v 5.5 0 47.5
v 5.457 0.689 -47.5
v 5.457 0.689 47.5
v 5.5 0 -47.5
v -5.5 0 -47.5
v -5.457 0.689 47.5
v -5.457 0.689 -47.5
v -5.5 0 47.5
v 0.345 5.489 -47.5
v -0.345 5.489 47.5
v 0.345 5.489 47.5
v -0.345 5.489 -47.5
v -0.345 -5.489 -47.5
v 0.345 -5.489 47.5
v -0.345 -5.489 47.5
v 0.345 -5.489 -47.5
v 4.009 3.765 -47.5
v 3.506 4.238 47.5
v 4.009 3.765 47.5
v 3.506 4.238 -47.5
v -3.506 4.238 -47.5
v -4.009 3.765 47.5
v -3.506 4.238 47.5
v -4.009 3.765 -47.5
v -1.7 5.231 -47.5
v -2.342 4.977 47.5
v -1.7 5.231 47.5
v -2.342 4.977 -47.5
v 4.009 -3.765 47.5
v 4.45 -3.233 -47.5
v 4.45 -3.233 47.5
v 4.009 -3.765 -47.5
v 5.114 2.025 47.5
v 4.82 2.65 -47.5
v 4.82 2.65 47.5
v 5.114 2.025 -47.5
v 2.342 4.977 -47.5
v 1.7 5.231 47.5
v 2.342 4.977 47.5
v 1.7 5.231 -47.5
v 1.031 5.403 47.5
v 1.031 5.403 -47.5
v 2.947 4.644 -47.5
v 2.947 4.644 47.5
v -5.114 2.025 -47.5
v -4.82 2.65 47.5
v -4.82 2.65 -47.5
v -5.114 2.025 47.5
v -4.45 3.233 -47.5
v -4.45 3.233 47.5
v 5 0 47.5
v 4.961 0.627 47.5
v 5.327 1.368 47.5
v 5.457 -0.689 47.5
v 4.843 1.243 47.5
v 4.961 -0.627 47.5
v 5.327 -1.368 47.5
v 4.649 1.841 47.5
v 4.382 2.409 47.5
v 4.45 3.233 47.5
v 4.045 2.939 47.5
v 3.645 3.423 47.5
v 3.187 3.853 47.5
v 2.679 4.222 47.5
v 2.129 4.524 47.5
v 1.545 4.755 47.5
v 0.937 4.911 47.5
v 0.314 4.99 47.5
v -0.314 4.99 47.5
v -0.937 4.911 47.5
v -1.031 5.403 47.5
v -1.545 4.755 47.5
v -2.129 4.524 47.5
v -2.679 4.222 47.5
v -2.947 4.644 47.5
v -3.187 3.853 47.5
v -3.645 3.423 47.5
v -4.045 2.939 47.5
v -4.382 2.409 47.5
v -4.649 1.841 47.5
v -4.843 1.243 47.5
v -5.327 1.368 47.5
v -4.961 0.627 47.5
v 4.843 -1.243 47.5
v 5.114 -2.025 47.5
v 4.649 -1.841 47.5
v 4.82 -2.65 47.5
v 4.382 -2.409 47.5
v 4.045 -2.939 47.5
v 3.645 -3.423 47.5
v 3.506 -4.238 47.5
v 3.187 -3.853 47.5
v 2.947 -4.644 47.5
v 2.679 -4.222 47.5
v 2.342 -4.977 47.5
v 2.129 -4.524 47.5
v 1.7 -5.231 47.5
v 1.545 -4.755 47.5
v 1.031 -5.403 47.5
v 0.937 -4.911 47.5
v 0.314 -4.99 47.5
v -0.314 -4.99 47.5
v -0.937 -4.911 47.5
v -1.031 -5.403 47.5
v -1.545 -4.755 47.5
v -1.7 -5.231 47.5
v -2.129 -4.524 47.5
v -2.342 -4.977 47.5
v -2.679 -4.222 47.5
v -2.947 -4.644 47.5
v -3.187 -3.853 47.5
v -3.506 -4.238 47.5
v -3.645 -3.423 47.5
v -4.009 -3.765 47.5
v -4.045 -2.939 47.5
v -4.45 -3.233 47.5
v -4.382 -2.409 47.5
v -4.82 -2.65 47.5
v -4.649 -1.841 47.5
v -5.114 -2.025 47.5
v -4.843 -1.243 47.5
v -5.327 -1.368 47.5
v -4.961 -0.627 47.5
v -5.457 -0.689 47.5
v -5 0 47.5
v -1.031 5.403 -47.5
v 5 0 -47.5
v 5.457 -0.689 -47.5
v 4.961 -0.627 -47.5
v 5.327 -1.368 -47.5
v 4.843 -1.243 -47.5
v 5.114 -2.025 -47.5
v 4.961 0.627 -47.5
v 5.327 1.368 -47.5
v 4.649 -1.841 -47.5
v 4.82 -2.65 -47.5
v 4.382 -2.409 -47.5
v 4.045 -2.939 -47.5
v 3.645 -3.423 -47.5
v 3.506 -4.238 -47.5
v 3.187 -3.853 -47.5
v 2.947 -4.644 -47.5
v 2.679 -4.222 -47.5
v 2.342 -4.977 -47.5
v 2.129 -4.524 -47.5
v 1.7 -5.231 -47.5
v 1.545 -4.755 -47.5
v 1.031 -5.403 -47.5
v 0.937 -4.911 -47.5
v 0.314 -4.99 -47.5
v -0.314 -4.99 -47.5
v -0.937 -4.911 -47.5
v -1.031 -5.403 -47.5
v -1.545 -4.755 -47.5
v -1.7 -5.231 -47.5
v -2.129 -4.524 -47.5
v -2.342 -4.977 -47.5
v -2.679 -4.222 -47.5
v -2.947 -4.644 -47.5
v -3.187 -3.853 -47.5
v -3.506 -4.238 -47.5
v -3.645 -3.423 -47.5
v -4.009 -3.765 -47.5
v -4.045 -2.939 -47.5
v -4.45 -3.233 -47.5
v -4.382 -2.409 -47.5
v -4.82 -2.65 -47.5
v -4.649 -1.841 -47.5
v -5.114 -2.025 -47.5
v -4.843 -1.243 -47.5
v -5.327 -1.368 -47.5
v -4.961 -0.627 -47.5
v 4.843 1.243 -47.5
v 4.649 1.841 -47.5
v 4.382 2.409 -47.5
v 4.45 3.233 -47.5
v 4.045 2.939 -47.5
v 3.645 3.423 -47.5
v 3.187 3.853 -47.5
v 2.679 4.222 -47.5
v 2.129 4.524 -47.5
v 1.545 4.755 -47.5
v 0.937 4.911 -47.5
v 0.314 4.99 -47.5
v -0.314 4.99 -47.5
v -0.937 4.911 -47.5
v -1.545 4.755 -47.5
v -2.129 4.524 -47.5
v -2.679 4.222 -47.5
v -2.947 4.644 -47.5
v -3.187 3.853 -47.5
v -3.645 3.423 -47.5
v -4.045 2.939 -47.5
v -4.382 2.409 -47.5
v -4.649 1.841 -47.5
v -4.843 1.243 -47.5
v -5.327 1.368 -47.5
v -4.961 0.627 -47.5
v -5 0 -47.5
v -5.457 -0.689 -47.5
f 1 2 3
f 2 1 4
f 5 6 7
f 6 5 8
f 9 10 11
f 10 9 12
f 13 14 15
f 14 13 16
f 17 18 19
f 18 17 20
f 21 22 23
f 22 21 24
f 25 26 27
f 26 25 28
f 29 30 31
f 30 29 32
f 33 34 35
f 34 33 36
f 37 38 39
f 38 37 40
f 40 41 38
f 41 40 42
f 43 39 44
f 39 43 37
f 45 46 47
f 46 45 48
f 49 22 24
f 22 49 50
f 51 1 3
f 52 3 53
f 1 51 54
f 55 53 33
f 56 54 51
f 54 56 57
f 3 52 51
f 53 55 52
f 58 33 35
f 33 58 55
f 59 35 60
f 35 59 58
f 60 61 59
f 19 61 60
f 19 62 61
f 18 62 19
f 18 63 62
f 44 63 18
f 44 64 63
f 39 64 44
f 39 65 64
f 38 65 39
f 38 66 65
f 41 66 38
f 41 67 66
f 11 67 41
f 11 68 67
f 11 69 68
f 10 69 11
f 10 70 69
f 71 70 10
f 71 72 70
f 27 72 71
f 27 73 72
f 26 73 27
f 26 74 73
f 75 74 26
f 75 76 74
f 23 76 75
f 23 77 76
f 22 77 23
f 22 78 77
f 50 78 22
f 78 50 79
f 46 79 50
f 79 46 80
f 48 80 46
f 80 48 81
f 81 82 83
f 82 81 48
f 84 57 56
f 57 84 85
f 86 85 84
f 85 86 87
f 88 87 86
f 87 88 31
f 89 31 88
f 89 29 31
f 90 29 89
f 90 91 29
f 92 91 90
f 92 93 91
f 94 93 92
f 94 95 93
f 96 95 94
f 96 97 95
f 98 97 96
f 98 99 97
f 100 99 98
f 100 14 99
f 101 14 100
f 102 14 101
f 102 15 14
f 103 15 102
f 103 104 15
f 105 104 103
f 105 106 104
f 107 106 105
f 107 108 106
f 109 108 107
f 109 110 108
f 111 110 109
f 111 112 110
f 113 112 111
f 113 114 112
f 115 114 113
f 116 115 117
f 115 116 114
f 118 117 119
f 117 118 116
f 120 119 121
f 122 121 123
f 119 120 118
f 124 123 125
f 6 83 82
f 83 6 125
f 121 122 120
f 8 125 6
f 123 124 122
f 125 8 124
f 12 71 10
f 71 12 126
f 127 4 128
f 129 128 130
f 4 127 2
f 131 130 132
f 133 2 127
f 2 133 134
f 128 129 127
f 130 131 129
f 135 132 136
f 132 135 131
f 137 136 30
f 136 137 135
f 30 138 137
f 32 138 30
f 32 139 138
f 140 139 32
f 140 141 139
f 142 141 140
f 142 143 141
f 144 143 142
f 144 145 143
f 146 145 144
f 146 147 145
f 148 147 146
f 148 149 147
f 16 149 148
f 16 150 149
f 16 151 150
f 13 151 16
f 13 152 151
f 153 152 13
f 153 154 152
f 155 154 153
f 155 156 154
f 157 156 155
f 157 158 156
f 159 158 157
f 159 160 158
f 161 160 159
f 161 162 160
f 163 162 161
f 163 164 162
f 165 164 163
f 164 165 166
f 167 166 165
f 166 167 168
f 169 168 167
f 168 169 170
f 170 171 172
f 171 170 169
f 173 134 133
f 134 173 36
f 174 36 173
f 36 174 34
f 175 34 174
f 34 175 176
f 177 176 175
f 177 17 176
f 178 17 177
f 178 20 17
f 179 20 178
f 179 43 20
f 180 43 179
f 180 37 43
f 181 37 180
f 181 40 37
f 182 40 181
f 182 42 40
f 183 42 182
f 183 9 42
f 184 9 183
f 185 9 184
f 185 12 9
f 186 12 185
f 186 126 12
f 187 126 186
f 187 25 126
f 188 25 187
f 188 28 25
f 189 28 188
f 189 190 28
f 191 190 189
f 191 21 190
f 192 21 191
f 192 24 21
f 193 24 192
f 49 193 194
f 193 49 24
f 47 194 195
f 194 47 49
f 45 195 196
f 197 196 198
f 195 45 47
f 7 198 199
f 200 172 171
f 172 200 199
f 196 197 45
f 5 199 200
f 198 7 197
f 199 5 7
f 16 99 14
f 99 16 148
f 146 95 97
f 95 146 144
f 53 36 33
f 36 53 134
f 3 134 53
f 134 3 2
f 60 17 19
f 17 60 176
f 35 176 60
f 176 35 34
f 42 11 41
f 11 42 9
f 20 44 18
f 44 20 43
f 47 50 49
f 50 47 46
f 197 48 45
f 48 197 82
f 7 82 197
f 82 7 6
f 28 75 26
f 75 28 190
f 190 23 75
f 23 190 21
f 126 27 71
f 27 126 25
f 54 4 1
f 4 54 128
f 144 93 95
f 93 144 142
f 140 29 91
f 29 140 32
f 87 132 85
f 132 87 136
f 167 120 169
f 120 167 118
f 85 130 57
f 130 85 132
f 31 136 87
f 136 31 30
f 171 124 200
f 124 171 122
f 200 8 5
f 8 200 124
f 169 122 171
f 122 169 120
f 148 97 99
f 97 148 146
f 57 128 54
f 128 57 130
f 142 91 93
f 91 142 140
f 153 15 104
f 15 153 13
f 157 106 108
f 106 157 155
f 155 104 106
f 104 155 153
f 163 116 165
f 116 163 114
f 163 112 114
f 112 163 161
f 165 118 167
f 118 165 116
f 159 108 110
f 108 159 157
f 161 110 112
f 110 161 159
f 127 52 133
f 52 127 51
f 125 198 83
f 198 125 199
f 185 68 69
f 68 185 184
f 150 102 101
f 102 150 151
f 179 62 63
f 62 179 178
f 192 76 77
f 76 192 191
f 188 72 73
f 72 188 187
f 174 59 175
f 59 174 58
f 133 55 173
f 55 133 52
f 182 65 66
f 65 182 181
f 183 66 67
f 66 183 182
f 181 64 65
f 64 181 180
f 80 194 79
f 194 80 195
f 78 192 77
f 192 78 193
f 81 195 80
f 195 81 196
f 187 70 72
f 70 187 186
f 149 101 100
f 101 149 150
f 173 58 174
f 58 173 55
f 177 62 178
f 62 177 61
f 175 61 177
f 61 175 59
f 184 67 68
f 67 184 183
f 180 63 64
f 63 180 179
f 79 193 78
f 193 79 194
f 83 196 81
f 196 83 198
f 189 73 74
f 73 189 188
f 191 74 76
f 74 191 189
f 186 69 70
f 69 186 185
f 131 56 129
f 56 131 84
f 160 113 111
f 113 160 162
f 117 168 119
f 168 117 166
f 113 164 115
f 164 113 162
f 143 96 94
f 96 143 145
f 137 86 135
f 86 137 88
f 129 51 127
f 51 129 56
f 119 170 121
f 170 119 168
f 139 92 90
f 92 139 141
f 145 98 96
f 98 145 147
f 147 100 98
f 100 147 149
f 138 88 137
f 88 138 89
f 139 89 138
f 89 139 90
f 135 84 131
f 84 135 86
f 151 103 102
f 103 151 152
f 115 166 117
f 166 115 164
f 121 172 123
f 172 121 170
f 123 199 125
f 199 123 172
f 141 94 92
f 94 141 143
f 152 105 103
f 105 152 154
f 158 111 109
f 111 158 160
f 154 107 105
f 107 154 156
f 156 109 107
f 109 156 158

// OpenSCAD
$fn = 50;


difference() {
	union() {
		translate(v = [0, 0, -47.5000000000]) {
			cylinder(h = 95, r = 5.5000000000);
		}
	}
	union() {
		translate(v = [0, 0, -100.0000000000]) {
			cylinder(h = 200, r = 5);
		}
	}
}
